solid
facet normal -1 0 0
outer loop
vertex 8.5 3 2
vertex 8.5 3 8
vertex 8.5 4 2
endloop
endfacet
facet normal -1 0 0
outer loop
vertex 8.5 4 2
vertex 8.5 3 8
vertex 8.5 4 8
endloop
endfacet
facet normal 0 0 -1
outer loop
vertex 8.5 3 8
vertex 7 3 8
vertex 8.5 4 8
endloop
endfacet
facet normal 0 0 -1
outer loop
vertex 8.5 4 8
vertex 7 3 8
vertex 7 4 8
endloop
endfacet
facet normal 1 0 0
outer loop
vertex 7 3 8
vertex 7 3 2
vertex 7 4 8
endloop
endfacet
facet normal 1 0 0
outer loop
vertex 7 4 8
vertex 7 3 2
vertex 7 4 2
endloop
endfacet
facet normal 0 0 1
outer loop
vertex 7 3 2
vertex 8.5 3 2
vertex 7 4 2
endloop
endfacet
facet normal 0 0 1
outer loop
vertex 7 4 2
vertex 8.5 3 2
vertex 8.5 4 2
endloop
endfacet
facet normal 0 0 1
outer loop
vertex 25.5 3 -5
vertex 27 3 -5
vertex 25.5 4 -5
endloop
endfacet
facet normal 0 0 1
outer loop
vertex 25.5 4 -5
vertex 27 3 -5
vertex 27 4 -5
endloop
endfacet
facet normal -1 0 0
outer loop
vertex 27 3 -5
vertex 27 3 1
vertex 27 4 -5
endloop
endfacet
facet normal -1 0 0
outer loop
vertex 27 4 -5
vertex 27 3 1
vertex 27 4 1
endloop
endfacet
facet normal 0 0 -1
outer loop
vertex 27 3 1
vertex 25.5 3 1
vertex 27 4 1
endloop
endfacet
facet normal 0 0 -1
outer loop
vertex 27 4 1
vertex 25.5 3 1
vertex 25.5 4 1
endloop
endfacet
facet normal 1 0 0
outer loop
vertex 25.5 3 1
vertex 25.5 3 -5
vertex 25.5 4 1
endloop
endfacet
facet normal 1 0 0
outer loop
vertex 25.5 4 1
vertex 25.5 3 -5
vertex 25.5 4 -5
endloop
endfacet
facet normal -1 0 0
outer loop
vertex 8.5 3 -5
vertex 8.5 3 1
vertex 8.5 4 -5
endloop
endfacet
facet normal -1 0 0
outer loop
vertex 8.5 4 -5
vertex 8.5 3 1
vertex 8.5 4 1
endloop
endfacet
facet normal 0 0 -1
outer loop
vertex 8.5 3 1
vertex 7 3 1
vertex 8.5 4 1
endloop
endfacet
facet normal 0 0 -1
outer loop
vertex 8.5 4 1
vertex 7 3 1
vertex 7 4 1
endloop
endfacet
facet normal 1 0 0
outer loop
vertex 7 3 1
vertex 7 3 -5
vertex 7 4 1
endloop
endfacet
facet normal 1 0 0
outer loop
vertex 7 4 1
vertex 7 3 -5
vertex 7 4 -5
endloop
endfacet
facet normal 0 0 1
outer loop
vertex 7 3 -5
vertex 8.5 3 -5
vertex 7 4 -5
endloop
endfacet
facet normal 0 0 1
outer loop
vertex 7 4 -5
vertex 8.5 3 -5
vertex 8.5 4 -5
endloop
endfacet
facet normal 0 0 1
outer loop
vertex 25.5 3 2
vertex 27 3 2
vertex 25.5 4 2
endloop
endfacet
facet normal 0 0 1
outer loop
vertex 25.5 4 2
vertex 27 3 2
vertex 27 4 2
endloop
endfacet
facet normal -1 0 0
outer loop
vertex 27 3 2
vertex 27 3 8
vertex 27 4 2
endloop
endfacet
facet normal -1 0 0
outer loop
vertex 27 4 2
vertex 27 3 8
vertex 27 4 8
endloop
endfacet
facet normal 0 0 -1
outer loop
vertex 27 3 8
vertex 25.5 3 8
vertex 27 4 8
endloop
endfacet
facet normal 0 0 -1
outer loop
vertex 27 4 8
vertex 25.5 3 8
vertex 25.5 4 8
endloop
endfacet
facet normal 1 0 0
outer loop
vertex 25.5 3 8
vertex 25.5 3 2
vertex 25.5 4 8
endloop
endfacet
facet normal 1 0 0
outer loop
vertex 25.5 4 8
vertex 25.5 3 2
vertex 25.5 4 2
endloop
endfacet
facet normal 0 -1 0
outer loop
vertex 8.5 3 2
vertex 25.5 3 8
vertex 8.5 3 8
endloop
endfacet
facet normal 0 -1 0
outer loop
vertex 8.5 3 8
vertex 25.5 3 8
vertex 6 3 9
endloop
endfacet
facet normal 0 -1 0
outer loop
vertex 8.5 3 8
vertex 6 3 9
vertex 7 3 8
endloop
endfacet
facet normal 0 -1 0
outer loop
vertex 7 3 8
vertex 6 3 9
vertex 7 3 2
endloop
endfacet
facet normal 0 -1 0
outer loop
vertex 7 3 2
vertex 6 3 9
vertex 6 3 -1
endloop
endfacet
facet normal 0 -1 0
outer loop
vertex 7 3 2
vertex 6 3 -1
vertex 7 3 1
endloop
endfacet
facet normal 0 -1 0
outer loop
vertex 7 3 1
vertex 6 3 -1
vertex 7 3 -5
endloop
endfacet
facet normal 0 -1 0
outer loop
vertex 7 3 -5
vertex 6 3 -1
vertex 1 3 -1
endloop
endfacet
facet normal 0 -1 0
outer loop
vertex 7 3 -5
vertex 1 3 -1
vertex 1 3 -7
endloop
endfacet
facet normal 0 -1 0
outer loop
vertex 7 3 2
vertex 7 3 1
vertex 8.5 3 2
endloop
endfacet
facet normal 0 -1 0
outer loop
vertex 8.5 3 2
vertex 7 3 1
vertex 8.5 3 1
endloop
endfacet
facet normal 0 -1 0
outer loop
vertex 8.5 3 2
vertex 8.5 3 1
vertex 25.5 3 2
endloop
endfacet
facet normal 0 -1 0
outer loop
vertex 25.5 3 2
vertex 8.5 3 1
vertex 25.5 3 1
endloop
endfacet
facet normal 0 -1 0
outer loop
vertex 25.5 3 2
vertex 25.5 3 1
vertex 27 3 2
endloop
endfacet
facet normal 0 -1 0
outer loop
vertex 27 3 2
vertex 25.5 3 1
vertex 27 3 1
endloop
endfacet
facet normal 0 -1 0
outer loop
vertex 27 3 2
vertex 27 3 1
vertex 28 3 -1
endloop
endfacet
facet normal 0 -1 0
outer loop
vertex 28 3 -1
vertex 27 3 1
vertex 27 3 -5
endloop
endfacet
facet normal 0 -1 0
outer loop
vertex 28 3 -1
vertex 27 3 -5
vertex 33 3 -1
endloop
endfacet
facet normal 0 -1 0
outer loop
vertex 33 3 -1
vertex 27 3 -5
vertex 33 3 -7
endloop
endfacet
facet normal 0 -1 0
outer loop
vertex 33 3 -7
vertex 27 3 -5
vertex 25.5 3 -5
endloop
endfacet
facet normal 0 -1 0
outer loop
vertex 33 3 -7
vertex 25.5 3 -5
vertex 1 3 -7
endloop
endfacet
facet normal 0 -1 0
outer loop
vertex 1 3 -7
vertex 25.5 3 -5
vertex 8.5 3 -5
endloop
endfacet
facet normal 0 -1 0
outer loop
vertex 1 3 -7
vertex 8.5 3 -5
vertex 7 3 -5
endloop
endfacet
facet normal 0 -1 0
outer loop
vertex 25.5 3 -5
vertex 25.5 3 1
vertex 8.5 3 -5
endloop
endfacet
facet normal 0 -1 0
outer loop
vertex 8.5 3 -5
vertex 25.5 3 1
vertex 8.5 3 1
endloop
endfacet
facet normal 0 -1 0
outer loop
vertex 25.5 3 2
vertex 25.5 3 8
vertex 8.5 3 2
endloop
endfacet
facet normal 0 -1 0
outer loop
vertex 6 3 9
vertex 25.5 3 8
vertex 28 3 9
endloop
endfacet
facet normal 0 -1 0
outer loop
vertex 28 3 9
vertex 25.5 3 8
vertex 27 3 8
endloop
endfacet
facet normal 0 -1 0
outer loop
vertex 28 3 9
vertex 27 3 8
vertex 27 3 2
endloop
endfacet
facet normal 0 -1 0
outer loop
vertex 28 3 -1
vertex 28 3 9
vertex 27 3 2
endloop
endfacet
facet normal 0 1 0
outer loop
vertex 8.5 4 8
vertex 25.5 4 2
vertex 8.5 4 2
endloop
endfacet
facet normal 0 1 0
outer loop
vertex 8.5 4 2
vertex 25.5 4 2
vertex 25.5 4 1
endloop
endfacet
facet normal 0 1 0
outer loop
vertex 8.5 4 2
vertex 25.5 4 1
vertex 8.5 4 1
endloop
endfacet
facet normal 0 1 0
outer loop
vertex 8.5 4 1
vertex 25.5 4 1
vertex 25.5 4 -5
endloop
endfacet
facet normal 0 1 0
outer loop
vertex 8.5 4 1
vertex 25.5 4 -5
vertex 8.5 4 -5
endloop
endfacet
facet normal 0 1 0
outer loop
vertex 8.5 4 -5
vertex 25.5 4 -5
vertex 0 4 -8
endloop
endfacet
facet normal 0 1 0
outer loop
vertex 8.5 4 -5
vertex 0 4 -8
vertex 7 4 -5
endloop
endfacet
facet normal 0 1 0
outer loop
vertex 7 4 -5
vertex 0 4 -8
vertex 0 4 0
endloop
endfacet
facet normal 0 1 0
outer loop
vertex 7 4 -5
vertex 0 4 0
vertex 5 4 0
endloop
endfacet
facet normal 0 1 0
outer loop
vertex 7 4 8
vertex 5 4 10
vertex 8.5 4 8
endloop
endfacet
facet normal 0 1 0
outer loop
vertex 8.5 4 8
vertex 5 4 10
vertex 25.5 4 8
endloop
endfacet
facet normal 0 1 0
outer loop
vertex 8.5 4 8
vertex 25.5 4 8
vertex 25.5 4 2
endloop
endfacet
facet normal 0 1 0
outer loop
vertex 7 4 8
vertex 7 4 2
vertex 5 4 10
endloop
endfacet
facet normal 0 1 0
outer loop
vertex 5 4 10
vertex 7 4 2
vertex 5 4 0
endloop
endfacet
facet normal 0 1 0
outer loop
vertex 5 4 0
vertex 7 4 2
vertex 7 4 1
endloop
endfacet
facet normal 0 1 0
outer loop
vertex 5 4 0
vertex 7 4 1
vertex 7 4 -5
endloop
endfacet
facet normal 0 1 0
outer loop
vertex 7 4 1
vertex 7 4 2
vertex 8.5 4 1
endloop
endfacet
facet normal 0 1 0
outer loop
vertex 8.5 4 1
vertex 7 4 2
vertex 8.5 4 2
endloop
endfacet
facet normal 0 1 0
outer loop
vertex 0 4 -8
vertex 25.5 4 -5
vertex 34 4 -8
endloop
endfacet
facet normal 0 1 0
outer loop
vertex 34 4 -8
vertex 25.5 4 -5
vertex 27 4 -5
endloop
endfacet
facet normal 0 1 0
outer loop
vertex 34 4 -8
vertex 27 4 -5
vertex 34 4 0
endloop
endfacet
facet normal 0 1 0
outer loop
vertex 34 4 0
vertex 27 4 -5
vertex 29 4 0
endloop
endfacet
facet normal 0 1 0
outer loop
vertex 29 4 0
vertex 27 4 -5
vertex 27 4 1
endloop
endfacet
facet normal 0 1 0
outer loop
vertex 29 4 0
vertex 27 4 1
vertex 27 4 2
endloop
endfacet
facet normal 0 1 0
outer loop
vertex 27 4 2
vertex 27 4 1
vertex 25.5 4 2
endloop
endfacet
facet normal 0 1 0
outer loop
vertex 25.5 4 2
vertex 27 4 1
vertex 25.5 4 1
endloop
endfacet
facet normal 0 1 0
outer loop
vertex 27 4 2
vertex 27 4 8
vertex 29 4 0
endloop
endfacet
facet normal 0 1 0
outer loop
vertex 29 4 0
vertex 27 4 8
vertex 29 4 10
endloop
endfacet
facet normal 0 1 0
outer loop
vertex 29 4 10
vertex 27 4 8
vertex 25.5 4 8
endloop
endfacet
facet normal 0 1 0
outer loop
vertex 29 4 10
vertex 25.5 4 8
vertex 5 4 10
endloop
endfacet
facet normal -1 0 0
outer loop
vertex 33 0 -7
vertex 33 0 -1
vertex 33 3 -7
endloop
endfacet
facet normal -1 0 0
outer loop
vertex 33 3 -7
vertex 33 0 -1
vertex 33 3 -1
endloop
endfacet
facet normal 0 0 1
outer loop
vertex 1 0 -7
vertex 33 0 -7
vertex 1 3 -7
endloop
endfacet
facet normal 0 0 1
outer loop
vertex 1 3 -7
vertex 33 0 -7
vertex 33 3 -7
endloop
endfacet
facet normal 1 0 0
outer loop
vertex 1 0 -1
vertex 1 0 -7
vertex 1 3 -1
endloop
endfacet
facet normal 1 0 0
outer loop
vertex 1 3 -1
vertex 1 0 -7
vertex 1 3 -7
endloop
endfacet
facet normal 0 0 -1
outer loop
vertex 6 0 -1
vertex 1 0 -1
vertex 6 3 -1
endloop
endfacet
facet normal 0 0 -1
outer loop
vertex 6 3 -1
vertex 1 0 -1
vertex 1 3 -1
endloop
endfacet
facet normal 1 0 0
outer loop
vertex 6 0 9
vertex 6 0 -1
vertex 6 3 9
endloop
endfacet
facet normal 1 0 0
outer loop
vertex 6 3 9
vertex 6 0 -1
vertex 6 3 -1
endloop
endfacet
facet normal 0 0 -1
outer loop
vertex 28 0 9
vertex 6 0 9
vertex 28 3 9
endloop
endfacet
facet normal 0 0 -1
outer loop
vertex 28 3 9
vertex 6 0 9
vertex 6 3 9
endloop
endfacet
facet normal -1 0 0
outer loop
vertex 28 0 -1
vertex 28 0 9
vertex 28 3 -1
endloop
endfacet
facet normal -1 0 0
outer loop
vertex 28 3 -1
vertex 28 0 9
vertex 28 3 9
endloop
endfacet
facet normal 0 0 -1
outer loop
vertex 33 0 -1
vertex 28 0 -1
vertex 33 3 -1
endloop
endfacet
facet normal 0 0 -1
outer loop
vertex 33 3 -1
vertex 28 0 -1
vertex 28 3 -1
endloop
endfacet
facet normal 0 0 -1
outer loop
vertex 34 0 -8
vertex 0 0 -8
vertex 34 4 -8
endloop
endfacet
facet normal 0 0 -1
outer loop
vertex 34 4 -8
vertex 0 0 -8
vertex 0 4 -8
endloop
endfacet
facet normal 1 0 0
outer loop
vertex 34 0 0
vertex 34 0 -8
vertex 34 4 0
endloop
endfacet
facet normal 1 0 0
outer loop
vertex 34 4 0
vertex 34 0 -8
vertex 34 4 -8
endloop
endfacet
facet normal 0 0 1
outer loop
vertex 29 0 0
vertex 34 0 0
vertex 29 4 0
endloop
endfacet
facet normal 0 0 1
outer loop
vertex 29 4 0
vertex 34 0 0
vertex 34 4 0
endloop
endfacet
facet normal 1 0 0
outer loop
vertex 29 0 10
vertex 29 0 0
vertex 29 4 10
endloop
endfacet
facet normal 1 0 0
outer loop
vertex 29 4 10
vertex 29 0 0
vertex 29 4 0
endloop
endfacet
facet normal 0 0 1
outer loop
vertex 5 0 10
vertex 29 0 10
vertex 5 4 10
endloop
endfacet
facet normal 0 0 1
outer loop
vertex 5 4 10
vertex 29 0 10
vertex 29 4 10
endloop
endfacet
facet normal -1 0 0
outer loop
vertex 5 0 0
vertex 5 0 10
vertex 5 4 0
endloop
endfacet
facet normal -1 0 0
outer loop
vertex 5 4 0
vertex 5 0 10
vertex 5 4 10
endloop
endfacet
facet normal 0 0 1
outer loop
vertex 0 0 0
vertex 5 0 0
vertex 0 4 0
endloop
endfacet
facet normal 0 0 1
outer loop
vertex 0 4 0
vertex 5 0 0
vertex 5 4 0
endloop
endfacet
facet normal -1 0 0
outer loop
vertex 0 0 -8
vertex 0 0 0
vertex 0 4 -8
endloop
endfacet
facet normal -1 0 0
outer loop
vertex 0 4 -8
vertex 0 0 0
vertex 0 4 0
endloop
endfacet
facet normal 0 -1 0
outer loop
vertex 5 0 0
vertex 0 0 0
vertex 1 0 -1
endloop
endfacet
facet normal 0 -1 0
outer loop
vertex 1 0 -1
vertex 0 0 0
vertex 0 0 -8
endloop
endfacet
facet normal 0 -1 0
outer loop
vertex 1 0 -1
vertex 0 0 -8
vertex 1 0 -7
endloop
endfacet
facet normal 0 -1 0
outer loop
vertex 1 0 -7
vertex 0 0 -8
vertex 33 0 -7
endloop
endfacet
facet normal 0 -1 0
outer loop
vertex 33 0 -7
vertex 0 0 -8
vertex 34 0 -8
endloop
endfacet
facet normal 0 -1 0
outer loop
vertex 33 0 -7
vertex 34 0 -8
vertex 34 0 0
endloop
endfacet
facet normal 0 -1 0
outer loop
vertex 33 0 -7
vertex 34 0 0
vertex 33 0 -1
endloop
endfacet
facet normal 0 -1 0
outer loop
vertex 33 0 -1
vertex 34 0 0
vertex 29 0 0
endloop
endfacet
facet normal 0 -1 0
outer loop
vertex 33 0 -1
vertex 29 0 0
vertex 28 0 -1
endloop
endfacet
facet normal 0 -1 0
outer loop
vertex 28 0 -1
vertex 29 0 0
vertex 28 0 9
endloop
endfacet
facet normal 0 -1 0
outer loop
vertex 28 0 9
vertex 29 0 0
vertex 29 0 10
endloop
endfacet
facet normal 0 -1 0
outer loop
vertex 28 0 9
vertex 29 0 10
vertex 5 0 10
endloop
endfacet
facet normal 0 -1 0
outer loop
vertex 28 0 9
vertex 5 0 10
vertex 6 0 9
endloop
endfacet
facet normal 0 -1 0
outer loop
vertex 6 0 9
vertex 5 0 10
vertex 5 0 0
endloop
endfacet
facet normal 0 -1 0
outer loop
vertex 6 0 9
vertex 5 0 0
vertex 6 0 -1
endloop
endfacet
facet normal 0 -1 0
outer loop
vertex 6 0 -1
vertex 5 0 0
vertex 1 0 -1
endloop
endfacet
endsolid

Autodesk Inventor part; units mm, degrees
ref_plane "YZ Plane" through (0, 0, 0) normal (1, 0, 0) x (0, 1, 0)
ref_plane "XZ Plane" through (0, 0, 0) normal (0, 1, 0) x (-1, 0, 0)
ref_plane "XY Plane" through (0, 0, 0) normal (0, 0, 1) x (1, 0, 0)
sketch "Sketch1" plane through (0, 0, 0) normal (0, 1, 0) x (-1, 0, 0)
  line L0 (-34, 0) -> (-34, -8)
  line L1 (-34, -8) -> (0, -8)
  line L2 (0, -8) -> (0, 0)
  line L3 (0, 0) -> (0, -1)
  line L4 (-33, -1) -> (-33, -7)
  line L5 (-33, -7) -> (-1, -7)
  line L6 (-1, -7) -> (-1, -1)
  line L7 (-5, 0) -> (-5, 10)
  line L8 (-5, 10) -> (-29, 10)
  line L9 (-29, 10) -> (-29, 0)
  line L10 (-29, 10) -> (-29, 9)
  line L11 (-1, -1) -> (-5, -1)
  line L12 (-29, -1) -> (-33, -1)
  line L13 (-29, -1) -> (-28, -1)
  line L14 (0, 0) -> (-5, 0)
  line L15 (-34, 0) -> (-29, 0)
  line L16 (-28, -1) -> (-28, 9)
  line L17 (-28, 9) -> (-6, 9)
  line L18 (-6, 9) -> (-6, -1)
  line L19 (-6, -1) -> (-5, -1)
  line L20 (0, 0) -> (-5, 0)
  dimension "d0" = 34
  dimension "d1" = 8
  dimension "d4" = 32
  dimension "d5" = 6
  dimension "d9" = 24
  dimension "d17" = 10
  dimension "d18" = 22
extrude "Extrusion1" add sketch "Sketch1" along normal blind 3
sketch "Sketch2" plane through (0, 3, 0) normal (0, 1, 0) x (1, 0, 0)
  line L0 (0, 8) -> (0, 0) projected
  line L1 (34, 8) -> (0, 8) projected
  line L2 (34, 0) -> (34, 8) projected
  line L3 (29, 0) -> (34, 0) projected
  line L4 (29, -10) -> (29, 0) projected
  line L5 (5, -10) -> (29, -10) projected
  line L6 (5, 0) -> (5, -10) projected
  line L7 (0, 0) -> (5, 0) projected
extrude "Extrusion2" add sketch "Sketch2" along normal blind 1
sketch "Sketch3" plane through (0, 3, 0) normal (0, -1, 0) x (1, 0, 0)
  line L0 (33, -7) -> (33, -1) projected
  line L1 (33, -1) -> (28, -1) projected
  line L2 (28, -1) -> (28, 9) projected
  line L3 (28, 9) -> (6, 9) projected
  line L4 (6, 9) -> (6, -1) projected
  line L5 (6, -1) -> (1, -1) projected
  line L6 (1, -1) -> (1, -7) projected
  line L7 (1, -7) -> (33, -7) projected
  line L8 (28, 9) -> (6, 9) projected
  line L9 (6, 9) -> (6, 8)
  line L10 (6, 9) -> (6, -1) projected
  line L11 (6, 8) -> (7, 8)
  line L12 (7, 8) -> (8.5, 8)
  line L13 (8.5, 8) -> (8.5, 2)
  line L14 (8.5, 2) -> (7, 2)
  line L15 (7, 2) -> (7, 8)
  line L16 (7, 2) -> (7, 1)
  line L17 (7, 1) -> (8.5, 1)
  line L18 (8.5, 1) -> (8.5, -5)
  line L19 (8.5, -5) -> (7, -5)
  line L20 (7, -5) -> (7, 1)
  line L21 (28, -1) -> (28, 9) projected
  line L22 (28, 9) -> (28, 8)
  line L23 (28, 8) -> (27, 8)
  line L24 (27, 8) -> (25.5, 8)
  line L25 (25.5, 8) -> (25.5, 2)
  line L26 (25.5, 2) -> (27, 2)
  line L27 (27, 2) -> (27, 8)
  line L28 (27, 2) -> (27, 1)
  line L29 (27, 1) -> (25.5, 1)
  line L30 (25.5, 1) -> (25.5, -5)
  line L31 (25.5, -5) -> (27, -5)
  line L32 (27, -5) -> (27, 1)
  point P0 (0, 0)
  dimension "d23" = 1
  dimension "d24" = 1
  dimension "d26" = 1.5
  dimension "d27" = 6
  dimension "d28" = 1
  dimension "d29" = 1.5
  dimension "d30" = 6
  dimension "d31" = 1
  dimension "d32" = 1
  dimension "d33" = 1.5
  dimension "d34" = 6
  dimension "d35" = 1
extrude "Extrusion3" cut sketch "Sketch3" against normal blind 1 contours L32 L31 L30 L29 | L27 L26 L25 L24 | L17 L18 L19 L20 | L12 L13 L14 L15
sketch "Sketch4" plane through (0, 0, 0) normal (0, -1, 0) x (1, 0, 0)
  point P0 (0, 0)
properties part number "led-reed-compartment"
